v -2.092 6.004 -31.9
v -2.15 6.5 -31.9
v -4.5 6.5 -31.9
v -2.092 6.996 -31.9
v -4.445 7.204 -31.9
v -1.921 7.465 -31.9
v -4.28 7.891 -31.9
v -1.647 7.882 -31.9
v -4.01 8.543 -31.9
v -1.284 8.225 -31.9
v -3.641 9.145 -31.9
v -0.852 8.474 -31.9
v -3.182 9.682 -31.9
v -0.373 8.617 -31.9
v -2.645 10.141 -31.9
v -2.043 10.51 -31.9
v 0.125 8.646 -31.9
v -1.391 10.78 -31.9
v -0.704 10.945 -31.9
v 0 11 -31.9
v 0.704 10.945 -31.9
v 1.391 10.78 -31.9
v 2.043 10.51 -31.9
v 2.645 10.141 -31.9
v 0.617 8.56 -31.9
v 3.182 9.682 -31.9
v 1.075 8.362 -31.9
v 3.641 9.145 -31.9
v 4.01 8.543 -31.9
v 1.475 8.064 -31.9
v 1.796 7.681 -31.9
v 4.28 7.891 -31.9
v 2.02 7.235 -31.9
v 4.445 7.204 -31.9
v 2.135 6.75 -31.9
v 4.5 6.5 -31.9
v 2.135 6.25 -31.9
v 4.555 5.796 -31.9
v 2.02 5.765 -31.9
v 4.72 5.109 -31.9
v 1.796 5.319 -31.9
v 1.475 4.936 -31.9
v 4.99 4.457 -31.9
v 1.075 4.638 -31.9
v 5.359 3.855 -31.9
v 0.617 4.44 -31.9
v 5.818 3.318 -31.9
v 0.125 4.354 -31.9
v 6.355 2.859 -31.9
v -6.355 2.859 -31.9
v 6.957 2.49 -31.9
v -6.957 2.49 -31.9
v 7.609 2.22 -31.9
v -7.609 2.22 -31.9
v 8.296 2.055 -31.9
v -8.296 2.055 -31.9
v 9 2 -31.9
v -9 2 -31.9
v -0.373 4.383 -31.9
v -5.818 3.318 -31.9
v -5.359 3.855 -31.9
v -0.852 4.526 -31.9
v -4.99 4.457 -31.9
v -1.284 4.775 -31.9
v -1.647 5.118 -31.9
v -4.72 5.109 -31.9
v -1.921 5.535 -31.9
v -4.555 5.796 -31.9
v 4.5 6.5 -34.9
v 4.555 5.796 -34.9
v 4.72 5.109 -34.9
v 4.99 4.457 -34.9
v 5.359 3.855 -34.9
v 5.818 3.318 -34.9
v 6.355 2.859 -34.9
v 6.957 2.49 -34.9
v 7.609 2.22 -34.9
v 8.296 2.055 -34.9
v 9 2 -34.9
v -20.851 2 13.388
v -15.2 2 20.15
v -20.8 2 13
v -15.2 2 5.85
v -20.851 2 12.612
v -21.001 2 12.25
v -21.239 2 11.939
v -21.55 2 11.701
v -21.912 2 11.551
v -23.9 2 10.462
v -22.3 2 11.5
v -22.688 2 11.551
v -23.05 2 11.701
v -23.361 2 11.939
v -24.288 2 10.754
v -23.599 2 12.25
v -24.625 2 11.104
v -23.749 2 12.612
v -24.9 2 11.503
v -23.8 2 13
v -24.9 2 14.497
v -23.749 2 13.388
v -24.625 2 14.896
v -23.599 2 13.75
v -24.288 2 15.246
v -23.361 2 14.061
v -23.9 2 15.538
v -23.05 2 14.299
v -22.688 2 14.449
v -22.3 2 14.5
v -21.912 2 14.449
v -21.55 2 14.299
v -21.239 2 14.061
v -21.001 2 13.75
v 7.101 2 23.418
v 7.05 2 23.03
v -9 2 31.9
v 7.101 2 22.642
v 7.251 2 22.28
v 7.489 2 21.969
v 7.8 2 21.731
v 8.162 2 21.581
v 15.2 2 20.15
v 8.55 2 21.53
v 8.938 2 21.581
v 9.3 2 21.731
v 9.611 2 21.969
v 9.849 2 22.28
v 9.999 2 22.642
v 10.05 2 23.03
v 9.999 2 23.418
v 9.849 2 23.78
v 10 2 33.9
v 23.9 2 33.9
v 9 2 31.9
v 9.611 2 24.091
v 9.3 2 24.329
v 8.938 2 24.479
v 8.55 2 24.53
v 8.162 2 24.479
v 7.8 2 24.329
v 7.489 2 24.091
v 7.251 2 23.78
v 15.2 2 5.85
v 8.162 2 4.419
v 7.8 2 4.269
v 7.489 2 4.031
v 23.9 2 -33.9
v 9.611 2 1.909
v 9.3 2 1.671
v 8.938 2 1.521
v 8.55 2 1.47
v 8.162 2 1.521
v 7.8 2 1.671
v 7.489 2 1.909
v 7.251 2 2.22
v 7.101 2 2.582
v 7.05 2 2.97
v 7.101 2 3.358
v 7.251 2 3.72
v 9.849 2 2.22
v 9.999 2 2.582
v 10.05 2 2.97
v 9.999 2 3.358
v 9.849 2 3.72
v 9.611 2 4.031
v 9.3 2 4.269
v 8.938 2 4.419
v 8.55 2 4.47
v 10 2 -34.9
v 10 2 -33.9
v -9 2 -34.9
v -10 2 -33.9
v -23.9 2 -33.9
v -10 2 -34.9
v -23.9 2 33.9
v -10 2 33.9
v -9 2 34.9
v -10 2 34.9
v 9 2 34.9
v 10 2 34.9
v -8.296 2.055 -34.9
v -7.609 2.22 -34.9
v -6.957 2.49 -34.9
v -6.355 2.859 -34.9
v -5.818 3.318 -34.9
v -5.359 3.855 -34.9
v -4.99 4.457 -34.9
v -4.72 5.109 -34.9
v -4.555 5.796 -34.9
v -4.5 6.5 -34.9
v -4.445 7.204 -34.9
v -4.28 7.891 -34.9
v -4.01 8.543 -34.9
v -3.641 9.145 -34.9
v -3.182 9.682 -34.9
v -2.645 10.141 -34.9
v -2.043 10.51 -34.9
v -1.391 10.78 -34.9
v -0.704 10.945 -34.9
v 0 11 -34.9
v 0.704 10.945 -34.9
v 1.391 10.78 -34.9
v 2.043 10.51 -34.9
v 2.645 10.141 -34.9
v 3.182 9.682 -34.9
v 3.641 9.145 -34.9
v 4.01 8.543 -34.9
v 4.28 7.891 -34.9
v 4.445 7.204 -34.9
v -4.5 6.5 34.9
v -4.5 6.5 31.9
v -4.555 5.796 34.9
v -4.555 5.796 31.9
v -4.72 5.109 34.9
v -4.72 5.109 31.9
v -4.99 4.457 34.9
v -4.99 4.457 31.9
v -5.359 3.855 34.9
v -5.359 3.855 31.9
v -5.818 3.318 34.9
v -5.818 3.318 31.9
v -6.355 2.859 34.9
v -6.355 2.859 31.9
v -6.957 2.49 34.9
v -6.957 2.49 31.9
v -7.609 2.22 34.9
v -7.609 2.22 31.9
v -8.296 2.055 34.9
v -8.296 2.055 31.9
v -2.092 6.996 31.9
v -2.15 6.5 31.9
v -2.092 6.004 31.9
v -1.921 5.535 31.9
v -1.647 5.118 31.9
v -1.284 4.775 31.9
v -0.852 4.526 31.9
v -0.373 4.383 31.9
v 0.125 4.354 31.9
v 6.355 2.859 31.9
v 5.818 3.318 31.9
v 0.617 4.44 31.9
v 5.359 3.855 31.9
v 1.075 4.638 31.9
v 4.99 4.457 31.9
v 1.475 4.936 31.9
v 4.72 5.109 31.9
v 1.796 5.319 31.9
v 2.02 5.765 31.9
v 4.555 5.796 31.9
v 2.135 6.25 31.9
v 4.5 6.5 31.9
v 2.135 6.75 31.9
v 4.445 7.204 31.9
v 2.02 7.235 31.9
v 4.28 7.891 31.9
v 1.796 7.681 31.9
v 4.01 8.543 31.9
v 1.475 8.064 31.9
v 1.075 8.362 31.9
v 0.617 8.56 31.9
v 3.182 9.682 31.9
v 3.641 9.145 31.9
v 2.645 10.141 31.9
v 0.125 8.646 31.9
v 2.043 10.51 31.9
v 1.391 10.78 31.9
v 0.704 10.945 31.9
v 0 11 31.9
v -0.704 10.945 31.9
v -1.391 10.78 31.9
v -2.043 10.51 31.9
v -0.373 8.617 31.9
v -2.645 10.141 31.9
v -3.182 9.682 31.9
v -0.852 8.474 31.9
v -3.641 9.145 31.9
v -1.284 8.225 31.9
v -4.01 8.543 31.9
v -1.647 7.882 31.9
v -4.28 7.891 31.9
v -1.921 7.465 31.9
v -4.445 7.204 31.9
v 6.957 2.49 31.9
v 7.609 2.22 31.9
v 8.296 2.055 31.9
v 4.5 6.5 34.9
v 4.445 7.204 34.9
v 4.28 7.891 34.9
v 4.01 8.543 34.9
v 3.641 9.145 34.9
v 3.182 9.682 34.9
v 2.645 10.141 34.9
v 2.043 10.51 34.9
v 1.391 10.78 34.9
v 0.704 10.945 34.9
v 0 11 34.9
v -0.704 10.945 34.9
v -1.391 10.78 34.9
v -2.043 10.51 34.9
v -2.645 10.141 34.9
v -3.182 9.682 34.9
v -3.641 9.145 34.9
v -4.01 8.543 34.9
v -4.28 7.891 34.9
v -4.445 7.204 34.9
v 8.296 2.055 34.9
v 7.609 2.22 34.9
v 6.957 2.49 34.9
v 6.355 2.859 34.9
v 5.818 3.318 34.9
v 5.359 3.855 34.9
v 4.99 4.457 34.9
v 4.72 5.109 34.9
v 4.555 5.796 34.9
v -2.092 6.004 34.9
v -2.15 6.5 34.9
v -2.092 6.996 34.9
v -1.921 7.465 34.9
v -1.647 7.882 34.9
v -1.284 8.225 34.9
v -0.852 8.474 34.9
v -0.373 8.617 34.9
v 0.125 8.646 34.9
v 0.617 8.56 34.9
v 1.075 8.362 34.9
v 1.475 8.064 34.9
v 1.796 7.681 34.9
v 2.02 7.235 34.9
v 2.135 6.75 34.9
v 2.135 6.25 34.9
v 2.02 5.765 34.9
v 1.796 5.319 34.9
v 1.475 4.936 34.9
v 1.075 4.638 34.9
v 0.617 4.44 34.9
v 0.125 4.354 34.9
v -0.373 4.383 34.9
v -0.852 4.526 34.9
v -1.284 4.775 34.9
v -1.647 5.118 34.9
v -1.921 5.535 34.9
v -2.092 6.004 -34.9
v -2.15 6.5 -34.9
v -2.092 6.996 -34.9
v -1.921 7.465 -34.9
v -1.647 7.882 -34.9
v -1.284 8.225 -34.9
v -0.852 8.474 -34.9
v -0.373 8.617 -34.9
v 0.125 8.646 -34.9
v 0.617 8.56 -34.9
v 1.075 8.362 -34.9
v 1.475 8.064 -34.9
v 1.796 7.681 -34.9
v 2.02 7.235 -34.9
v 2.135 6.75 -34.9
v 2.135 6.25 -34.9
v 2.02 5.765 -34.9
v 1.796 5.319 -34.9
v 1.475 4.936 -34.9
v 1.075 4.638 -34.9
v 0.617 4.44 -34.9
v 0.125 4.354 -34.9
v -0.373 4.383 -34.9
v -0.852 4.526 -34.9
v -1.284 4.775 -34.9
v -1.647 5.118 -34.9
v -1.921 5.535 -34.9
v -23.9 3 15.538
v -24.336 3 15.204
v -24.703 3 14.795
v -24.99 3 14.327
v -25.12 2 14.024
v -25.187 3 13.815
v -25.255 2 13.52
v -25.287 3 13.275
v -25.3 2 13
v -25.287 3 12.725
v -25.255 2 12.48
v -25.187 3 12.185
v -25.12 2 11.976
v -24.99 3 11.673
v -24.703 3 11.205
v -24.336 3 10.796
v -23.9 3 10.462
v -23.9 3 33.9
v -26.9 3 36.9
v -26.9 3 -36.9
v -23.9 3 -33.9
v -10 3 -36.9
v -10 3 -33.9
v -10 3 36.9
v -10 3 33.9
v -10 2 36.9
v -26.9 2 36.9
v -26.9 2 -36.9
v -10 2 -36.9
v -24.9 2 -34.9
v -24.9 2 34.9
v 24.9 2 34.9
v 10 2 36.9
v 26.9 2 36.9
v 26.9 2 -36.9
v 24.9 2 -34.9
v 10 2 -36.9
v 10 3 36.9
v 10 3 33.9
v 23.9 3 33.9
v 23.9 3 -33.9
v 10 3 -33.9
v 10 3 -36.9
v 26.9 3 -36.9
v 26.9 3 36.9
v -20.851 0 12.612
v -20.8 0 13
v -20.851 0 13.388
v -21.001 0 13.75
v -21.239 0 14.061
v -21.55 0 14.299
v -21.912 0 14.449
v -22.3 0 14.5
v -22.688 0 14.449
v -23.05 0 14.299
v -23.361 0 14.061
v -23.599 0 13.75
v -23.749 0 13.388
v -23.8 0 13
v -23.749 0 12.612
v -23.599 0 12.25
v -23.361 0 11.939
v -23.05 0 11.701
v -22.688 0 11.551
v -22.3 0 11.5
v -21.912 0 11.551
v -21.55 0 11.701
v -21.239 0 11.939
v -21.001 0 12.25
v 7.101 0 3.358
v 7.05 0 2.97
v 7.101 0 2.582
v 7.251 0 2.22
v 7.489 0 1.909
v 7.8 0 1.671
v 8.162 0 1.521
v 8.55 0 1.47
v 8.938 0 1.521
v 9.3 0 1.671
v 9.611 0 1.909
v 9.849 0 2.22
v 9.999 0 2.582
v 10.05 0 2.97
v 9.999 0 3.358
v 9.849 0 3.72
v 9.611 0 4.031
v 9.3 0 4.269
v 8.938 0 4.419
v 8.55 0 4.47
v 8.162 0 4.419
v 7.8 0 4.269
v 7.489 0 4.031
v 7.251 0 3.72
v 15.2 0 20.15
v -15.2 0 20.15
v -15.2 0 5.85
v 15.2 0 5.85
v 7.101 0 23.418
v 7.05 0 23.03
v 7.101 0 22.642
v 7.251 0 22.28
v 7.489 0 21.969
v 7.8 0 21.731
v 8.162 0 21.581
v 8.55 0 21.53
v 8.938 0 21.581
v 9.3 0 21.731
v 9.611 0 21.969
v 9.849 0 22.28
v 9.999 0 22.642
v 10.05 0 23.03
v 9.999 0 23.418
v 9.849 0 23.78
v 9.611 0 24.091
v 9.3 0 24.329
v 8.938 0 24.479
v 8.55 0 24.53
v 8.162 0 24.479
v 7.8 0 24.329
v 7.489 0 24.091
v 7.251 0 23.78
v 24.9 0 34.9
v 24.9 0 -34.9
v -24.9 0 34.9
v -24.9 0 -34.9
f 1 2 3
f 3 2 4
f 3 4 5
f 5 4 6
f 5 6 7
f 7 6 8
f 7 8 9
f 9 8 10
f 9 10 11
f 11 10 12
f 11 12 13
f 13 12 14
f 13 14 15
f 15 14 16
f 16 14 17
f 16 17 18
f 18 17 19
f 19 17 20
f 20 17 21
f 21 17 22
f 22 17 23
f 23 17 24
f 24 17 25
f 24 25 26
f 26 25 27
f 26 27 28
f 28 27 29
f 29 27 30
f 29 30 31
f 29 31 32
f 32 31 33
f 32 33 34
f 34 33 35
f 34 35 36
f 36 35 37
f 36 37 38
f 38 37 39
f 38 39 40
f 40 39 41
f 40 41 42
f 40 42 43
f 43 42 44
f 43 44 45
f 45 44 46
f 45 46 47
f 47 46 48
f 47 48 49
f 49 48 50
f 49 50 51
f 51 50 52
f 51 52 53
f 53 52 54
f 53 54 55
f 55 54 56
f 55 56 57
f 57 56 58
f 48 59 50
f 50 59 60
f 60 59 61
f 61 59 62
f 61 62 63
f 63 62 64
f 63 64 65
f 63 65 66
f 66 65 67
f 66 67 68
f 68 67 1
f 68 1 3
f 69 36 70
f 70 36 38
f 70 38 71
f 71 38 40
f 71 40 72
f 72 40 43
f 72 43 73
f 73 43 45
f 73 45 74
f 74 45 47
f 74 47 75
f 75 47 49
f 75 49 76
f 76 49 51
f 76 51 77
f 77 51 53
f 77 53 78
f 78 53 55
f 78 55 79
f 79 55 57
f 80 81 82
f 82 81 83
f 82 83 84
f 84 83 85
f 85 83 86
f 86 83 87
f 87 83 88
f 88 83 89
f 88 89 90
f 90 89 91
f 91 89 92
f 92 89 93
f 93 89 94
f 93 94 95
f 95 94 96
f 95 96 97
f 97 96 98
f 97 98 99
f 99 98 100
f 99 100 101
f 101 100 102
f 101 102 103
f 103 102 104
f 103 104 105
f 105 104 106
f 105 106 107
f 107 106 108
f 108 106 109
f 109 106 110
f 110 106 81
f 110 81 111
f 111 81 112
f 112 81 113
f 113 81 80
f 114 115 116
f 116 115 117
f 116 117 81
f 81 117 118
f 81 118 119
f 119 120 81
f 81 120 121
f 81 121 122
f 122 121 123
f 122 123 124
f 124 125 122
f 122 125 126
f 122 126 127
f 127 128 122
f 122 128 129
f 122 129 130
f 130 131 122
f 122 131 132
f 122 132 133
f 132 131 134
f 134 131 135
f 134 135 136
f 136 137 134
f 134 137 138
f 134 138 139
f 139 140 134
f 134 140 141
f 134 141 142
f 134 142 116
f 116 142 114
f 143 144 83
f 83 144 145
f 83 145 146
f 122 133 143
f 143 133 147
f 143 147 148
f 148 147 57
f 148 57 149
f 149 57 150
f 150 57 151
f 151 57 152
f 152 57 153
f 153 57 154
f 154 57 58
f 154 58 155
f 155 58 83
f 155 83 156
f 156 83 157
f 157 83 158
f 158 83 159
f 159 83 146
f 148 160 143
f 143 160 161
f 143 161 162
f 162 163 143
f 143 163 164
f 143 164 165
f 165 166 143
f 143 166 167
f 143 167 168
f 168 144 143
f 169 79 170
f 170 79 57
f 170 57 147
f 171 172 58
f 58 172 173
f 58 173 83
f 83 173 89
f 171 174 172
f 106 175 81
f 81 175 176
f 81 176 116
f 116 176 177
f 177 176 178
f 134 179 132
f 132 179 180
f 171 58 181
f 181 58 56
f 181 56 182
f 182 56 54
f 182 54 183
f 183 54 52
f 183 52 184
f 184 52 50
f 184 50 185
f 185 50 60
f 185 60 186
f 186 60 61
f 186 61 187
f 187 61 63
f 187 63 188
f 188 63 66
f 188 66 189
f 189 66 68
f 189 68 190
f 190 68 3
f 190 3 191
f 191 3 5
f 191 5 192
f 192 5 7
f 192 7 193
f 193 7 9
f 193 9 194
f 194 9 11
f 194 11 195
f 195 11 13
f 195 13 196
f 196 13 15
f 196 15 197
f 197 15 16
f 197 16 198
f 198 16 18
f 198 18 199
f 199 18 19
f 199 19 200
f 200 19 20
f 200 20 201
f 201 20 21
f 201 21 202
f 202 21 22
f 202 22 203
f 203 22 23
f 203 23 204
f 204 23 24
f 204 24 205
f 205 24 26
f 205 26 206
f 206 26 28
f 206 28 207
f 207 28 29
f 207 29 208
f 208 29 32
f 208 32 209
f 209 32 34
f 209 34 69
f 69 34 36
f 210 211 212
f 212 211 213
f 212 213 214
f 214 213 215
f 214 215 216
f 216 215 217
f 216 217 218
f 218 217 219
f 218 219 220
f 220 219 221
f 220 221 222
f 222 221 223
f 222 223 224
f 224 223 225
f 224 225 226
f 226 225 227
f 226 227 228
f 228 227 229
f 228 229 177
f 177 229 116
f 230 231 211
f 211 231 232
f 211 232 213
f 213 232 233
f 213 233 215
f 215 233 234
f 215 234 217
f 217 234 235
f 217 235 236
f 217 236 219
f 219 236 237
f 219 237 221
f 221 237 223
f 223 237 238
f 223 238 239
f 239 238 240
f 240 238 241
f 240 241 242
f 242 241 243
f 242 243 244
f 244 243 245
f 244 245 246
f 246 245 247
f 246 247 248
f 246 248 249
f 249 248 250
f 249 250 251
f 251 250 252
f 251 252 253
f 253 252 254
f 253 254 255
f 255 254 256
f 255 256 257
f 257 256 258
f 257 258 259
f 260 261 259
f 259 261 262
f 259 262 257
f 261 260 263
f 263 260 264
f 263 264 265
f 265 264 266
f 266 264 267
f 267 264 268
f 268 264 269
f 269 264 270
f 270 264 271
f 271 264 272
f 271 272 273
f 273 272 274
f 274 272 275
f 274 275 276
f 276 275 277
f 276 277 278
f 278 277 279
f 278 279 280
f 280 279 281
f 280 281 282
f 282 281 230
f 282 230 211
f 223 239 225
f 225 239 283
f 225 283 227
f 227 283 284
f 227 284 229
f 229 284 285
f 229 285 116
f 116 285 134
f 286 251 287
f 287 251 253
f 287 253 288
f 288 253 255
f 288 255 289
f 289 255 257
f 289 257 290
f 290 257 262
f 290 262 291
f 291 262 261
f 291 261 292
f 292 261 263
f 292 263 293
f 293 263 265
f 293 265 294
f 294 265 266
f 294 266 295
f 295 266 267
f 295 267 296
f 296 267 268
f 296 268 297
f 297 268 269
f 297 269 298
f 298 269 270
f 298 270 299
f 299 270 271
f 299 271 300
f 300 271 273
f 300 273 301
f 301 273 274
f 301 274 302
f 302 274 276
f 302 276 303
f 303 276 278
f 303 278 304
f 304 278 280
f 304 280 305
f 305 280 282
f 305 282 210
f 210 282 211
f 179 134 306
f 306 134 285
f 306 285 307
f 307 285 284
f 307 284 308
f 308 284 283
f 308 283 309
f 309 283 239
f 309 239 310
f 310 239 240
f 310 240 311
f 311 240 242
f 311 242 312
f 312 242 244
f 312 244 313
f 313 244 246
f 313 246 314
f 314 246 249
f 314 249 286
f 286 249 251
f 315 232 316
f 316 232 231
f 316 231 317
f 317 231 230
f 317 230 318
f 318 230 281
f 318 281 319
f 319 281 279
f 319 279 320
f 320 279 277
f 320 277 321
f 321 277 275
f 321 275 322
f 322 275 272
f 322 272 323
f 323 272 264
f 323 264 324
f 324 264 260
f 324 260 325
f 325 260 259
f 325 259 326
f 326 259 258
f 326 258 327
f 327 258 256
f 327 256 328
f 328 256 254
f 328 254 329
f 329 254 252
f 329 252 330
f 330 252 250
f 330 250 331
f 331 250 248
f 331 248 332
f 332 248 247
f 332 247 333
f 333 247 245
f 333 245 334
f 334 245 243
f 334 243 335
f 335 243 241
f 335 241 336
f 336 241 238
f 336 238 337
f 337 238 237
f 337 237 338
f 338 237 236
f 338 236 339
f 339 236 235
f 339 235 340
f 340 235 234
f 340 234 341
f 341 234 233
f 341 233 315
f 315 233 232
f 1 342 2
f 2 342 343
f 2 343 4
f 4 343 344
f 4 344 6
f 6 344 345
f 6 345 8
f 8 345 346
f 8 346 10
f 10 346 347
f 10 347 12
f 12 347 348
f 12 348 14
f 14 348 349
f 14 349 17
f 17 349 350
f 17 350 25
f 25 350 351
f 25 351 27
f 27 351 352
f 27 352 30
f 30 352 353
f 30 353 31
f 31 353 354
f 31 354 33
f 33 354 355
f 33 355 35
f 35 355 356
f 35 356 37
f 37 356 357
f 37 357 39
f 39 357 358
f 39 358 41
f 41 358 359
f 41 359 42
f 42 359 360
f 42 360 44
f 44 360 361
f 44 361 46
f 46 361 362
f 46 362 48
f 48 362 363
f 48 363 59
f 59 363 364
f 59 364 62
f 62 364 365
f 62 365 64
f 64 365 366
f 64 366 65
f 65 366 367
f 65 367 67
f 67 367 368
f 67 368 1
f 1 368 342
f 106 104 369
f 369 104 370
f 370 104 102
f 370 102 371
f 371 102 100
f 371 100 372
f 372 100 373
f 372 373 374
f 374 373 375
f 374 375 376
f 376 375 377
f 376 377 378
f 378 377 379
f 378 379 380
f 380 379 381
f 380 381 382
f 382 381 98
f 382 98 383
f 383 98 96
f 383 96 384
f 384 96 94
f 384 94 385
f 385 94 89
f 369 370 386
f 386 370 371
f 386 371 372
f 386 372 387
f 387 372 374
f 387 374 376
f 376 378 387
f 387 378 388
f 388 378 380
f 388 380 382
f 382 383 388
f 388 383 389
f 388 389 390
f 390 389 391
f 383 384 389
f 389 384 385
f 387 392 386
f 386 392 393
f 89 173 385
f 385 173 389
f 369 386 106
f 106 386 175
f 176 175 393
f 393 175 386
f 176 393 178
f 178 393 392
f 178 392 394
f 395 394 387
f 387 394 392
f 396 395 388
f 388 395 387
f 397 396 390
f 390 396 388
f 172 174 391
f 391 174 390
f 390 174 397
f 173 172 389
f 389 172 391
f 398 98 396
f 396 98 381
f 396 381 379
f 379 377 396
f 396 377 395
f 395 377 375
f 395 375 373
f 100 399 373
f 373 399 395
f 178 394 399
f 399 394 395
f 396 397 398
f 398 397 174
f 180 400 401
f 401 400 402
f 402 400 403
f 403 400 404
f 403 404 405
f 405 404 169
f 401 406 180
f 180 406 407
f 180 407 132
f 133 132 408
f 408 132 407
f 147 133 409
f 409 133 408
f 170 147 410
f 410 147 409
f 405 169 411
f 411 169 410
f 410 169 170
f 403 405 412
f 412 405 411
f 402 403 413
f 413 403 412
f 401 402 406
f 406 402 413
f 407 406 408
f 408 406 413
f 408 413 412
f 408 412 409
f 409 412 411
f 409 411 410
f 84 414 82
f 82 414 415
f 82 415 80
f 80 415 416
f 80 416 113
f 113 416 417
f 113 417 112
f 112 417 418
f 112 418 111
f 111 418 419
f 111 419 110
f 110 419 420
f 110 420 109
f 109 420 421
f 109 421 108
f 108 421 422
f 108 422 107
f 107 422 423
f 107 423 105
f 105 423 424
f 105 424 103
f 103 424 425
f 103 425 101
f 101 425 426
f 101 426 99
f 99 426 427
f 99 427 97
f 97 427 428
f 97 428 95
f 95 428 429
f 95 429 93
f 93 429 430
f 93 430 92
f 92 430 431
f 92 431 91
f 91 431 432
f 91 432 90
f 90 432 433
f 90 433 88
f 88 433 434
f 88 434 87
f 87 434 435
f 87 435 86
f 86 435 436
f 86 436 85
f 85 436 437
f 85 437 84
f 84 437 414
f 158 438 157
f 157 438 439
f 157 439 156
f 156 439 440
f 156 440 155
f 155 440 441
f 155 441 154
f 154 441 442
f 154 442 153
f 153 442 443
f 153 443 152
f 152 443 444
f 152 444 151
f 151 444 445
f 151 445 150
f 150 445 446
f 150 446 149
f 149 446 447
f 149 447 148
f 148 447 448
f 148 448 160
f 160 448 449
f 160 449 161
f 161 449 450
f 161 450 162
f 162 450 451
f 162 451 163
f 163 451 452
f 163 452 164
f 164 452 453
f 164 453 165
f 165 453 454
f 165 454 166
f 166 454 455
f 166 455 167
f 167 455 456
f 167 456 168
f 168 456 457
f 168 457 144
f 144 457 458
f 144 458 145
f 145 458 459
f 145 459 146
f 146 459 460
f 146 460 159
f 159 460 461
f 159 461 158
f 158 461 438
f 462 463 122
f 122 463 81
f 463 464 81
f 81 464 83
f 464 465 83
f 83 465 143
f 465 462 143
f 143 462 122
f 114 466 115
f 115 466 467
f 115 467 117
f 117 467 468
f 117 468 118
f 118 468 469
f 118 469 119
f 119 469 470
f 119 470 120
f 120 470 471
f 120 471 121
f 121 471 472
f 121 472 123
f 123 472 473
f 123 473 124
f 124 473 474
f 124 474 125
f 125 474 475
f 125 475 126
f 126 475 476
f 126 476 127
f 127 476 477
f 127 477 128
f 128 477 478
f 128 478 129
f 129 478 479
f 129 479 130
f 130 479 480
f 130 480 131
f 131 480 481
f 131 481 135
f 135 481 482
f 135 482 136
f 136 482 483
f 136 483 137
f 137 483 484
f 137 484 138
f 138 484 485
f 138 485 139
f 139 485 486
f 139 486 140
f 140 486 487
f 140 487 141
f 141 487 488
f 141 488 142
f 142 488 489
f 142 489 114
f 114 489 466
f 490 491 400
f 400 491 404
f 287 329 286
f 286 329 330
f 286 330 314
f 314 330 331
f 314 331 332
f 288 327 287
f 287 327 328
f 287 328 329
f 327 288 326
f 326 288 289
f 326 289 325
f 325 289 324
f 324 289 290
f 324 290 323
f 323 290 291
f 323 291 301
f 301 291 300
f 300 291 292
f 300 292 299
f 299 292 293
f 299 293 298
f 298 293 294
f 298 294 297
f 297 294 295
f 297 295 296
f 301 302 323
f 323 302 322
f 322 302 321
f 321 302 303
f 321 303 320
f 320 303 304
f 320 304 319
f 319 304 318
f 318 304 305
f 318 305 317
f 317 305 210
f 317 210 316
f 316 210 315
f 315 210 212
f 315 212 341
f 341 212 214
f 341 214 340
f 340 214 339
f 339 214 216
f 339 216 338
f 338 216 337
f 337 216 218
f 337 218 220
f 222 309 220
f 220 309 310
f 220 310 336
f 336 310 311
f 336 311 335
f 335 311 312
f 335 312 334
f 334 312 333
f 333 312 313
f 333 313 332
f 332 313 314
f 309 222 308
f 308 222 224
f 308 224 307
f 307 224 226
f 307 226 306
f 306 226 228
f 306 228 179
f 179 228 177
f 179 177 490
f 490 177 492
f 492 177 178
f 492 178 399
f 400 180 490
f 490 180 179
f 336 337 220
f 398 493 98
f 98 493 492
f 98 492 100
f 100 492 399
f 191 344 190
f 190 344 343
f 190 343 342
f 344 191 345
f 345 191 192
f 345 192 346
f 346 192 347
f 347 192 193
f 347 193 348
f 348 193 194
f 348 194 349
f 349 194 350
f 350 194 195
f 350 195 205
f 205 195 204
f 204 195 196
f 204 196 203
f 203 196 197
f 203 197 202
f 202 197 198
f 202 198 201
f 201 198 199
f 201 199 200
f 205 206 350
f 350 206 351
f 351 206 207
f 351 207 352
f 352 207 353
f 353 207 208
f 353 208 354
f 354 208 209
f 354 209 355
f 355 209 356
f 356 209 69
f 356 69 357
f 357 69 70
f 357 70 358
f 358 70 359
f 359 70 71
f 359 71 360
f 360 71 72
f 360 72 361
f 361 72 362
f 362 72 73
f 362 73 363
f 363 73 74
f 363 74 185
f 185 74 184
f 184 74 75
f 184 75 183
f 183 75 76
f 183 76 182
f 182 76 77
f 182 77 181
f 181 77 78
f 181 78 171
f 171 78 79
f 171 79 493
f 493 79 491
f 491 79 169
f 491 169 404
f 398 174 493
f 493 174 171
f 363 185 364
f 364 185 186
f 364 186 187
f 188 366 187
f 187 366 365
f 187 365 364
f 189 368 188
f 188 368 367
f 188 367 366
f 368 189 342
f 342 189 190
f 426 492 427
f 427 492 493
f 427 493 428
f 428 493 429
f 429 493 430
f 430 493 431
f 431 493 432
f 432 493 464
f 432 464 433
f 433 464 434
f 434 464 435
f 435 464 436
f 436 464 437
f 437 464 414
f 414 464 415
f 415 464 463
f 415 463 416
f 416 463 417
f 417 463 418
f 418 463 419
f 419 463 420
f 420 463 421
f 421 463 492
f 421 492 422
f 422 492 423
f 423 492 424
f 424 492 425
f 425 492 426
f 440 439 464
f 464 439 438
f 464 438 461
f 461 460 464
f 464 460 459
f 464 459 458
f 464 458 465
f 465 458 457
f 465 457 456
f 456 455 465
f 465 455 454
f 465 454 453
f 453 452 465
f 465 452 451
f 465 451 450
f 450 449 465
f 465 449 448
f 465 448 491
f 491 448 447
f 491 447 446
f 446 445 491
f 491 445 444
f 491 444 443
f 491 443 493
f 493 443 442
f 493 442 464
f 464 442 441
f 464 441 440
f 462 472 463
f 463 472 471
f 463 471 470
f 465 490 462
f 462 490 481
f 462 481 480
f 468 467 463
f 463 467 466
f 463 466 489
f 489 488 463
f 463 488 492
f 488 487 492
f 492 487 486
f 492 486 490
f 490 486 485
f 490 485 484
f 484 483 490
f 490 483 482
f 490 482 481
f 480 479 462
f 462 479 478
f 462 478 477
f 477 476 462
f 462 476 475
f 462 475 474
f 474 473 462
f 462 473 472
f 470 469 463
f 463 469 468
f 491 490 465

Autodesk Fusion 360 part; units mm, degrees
sketch "Sketch2" plane through (0, 0, 0) normal (0, 1, 0) x (1, 0, 0)
  line L0 (24.9, -34.9) -> (-24.9, -34.9)
  line L1 (-24.9, -34.9) -> (-24.9, 34.9)
  line L2 (-24.9, 34.9) -> (24.9, 34.9)
  line L3 (24.9, 34.9) -> (24.9, -34.9)
  line L4 (24.9, -34.9) -> (-24.9, 34.9) construction
  line L5 (-24.9, -34.9) -> (24.9, 34.9) construction
  dimension "d1" = 49.8
  dimension "d2" = 69.8
extrude "Extrude1" add sketch "Sketch2" along normal blind 2
sketch "Sketch3" plane through (0, 0, 0) normal (0, -1, 0) x (1, 0, 0)
  line L0 (-24.9, -34.9) -> (24.9, -34.9)
  line L1 (24.9, -34.9) -> (24.9, 34.9)
  line L2 (24.9, 34.9) -> (-24.9, 34.9)
  line L3 (-24.9, 34.9) -> (-24.9, -34.9)
  line L4 (15.2, 20.15) -> (-15.2, 20.15)
  line L5 (-15.2, 20.15) -> (-15.2, 5.85)
  line L6 (-15.2, 5.85) -> (15.2, 5.85)
  line L7 (15.2, 5.85) -> (15.2, 20.15)
  line L8 (15.2, 20.15) -> (-15.2, 5.85) construction
  line L9 (-15.2, 20.15) -> (15.2, 5.85) construction
  line L10 (17.85, 23.03) -> (-22.3, 23.03) construction
  line L11 (-22.3, 23.03) -> (-22.3, 2.97) construction
  line L12 (-22.3, 2.97) -> (17.85, 2.97) construction
  line L13 (17.85, 2.97) -> (17.85, 23.03) construction
  line L14 (17.85, 23.03) -> (-22.3, 2.97) construction
  line L15 (-22.3, 23.03) -> (17.85, 2.97) construction
  line L16 (0, 13) -> (15.2, 13) construction
  circle A0 centre (8.55, 23.03) radius 1.5
  circle A1 centre (8.55, 2.97) radius 1.5
  circle A2 centre (-22.3, 13) radius 1.5
  point P0 (0, 13)
  point P1 (-2.225, 13)
  dimension "d5" = 30.4
  dimension "d6" = 14.3
  dimension "d7" = 40.15
  dimension "d8" = 20.06
  dimension "d10" = 2.65
  dimension "d11" = 3
  dimension "d12" = 9.3
  dimension "d13" = 3
extrude "Extrude2" cut sketch "Sketch3" against normal blind 2 contours L4 L5 L6 L7 | A0 | A1 | A2
sketch "Sketch5" plane through (0, 2, 0) normal (0, 1, 0) x (-1, 0, 0)
  circle A0 centre (22.3, 13) radius 1.5
  circle A1 centre (-8.55, 2.97) radius 1.5
  line L0 (-15.2, 20.15) -> (15.2, 20.15)
  line L1 (15.2, 20.15) -> (15.2, 5.85)
  line L2 (15.2, 5.85) -> (-15.2, 5.85)
  line L3 (-15.2, 5.85) -> (-15.2, 20.15)
  circle A2 centre (-8.55, 23.03) radius 1.5
  line L4 (-24.9, -34.9) -> (24.9, -34.9)
  line L5 (24.9, -34.9) -> (24.9, 34.9)
  line L6 (24.9, 34.9) -> (-24.9, 34.9)
  line L7 (-24.9, 34.9) -> (-24.9, -34.9)
  line L8 (-26.9, -36.9) -> (26.9, -36.9)
  line L9 (26.9, -36.9) -> (26.9, 36.9)
  line L10 (26.9, 36.9) -> (-26.9, 36.9)
  line L11 (-26.9, 36.9) -> (-26.9, -36.9)
  line L12 (-23.9, 33.9) -> (-23.9, -33.9)
  line L13 (-23.9, -33.9) -> (23.9, -33.9)
  line L14 (23.9, -33.9) -> (23.9, 33.9)
  line L15 (23.9, 33.9) -> (-23.9, 33.9)
  line L16 (0, 34.9) -> (0, -34.9) construction
  line L17 (-24.9, 0) -> (24.9, 0) construction
  line L18 (-10, 33.9) -> (10, 33.9)
  line L19 (10, 33.9) -> (10, 36.9)
  line L20 (10, 36.9) -> (-10, 36.9)
  line L21 (-10, 36.9) -> (-10, 33.9)
  line L22 (10, -36.9) -> (-10, -36.9)
  line L23 (10, -33.9) -> (10, -36.9)
  line L24 (-10, -36.9) -> (-10, -33.9)
  line L25 (-10, -33.9) -> (10, -33.9)
  dimension "d17" = 2
  dimension "d18" = -1
  dimension "d34" = 20
  dimension "d35" = 10
extrude "Extrude3" add sketch "Sketch5" along normal blind 1 contours L4 L6 L7 L12 L13 L15 L21 L24 | L4 L6 L7 L8 L10 L11 L21 L24 | L4 L5 L6 L13 L14 L15 L19 L23 | L4 L5 L6 L8 L9 L10 L19 L23
sketch "Sketch6" plane through (0, 2, 0) normal (0, 1, 0) x (-1, 0, 0)
  line L0 (-23.9, 33.9) -> (-23.9, -33.9)
  line L1 (-23.9, -33.9) -> (-10, -33.9)
  line L2 (23.9, -33.9) -> (23.9, 33.9)
  line L3 (-10, 33.9) -> (-23.9, 33.9)
  circle A0 centre (22.3, 13) radius 1.5
  circle A1 centre (-8.55, 2.97) radius 1.5
  line L4 (-15.2, 20.15) -> (15.2, 20.15)
  line L5 (15.2, 20.15) -> (15.2, 5.85)
  line L6 (15.2, 5.85) -> (-15.2, 5.85)
  line L7 (-15.2, 5.85) -> (-15.2, 20.15)
  circle A2 centre (-8.55, 23.03) radius 1.5
  circle A3 centre (22.3, 13) radius 3
  line L8 (10, 33.9) -> (10, 34.9)
  line L9 (10, 34.9) -> (-10, 34.9)
  line L10 (-10, 34.9) -> (-10, 33.9)
  line L11 (-10, -33.9) -> (-10, -34.9)
  line L12 (-10, -34.9) -> (10, -34.9)
  line L13 (10, -34.9) -> (10, -33.9)
  line L14 (10, -33.9) -> (23.9, -33.9)
  line L15 (23.9, 33.9) -> (10, 33.9)
  dimension "d21" = 6
extrude "Extrude4" cut sketch "Sketch6" along normal blind 1 contours L2 A3 | L2 A3
sketch "Sketch9" plane through (0, 2, 0) normal (0, 1, 0) x (-1, 0, 0)
  circle A0 centre (22.3, 13) radius 1.5
  line L0 (23.9, 15.5377) -> (23.9, 33.9)
  line L1 (23.9, 33.9) -> (10, 33.9)
  line L2 (10, 33.9) -> (10, 34.9)
  line L3 (10, 34.9) -> (-10, 34.9)
  line L4 (-10, 34.9) -> (-10, 33.9)
  line L5 (-10, 33.9) -> (-23.9, 33.9)
  line L6 (-23.9, 33.9) -> (-23.9, -33.9)
  line L7 (-23.9, -33.9) -> (-10, -33.9)
  line L8 (-10, -33.9) -> (-10, -34.9)
  line L9 (-10, -34.9) -> (10, -34.9)
  line L10 (10, -34.9) -> (10, -33.9)
  line L11 (10, -33.9) -> (23.9, -33.9)
  line L12 (23.9, -33.9) -> (23.9, 10.4623)
  arc A1 (23.9, 10.4623) -> (24.9, 11.5033) centre (22.3, 13) ccw
  line L13 (24.9, 11.5033) -> (24.9, 14.4967)
  arc A2 (24.9, 14.4967) -> (23.9, 15.5377) centre (22.3, 13) ccw
  circle A3 centre (-8.55, 23.03) radius 1.5
  line L14 (-15.2, 20.15) -> (15.2, 20.15)
  line L15 (15.2, 20.15) -> (15.2, 5.85)
  line L16 (15.2, 5.85) -> (-15.2, 5.85)
  line L17 (-15.2, 5.85) -> (-15.2, 20.15)
  circle A4 centre (-8.55, 2.97) radius 1.5
  line L18 (0, 34.9) -> (0, -34.9) construction
  line L19 (-27, 0) -> (27, 0) construction
  line L20 (-4.5, 34.9) -> (4.5, 34.9)
  line L21 (4.5, 34.9) -> (4.5, 31.9)
  line L22 (4.5, 31.9) -> (-4.5, 31.9)
  line L23 (-4.5, 31.9) -> (-4.5, 34.9)
  line L24 (-4.5, -34.9) -> (4.5, -34.9)
  line L25 (-4.5, -31.9) -> (-4.5, -34.9)
  line L26 (4.5, -31.9) -> (-4.5, -31.9)
  line L27 (4.5, -34.9) -> (4.5, -31.9)
  dimension "d36" = 9
  dimension "d37" = 3
  dimension "d38" = 4.5
extrude "Extrude7" add sketch "Sketch9" along normal blind 9 contours L3 L20 L21 L22 L23 | L9 L24 L25 L26 L27
sketch "Sketch10" plane through (0, 0, -34.9) normal (0, 0, -1) x (1, 0, 0)
  line L0 (24.9, 0) -> (-24.9, 0)
  line L1 (-24.9, 0) -> (-24.9, -2)
  line L2 (-24.9, -2) -> (-10, -2)
  line L3 (-10, -2) -> (-4.5, -2)
  line L4 (-4.5, -2) -> (-4.5, -11)
  line L5 (-4.5, -11) -> (4.5, -11)
  line L6 (4.5, -11) -> (4.5, -2)
  line L7 (4.5, -2) -> (10, -2)
  line L8 (10, -2) -> (24.9, -2)
  line L9 (24.9, -2) -> (24.9, 0)
  line L10 (-4.5, -2) -> (4.5, -11) construction
  line L11 (4.5, -2) -> (-4.5, -11) construction
  circle A0 centre (0, -6.5) radius 2.15
  dimension "d41" = 4.3
extrude "Extrude8" cut sketch "Sketch10" against normal blind 72 contours A0
fillet "Fillet2" radius 4.5 8 edges at (4.5, 2, 33.4) (4.5, 11, 33.4) (-4.5, 11, 33.4) (-4.5, 2, 33.4) (-4.5, 11, -33.4) (-4.5, 2, -33.4) (4.5, 2, -33.4) (4.5, 11, -33.4)
